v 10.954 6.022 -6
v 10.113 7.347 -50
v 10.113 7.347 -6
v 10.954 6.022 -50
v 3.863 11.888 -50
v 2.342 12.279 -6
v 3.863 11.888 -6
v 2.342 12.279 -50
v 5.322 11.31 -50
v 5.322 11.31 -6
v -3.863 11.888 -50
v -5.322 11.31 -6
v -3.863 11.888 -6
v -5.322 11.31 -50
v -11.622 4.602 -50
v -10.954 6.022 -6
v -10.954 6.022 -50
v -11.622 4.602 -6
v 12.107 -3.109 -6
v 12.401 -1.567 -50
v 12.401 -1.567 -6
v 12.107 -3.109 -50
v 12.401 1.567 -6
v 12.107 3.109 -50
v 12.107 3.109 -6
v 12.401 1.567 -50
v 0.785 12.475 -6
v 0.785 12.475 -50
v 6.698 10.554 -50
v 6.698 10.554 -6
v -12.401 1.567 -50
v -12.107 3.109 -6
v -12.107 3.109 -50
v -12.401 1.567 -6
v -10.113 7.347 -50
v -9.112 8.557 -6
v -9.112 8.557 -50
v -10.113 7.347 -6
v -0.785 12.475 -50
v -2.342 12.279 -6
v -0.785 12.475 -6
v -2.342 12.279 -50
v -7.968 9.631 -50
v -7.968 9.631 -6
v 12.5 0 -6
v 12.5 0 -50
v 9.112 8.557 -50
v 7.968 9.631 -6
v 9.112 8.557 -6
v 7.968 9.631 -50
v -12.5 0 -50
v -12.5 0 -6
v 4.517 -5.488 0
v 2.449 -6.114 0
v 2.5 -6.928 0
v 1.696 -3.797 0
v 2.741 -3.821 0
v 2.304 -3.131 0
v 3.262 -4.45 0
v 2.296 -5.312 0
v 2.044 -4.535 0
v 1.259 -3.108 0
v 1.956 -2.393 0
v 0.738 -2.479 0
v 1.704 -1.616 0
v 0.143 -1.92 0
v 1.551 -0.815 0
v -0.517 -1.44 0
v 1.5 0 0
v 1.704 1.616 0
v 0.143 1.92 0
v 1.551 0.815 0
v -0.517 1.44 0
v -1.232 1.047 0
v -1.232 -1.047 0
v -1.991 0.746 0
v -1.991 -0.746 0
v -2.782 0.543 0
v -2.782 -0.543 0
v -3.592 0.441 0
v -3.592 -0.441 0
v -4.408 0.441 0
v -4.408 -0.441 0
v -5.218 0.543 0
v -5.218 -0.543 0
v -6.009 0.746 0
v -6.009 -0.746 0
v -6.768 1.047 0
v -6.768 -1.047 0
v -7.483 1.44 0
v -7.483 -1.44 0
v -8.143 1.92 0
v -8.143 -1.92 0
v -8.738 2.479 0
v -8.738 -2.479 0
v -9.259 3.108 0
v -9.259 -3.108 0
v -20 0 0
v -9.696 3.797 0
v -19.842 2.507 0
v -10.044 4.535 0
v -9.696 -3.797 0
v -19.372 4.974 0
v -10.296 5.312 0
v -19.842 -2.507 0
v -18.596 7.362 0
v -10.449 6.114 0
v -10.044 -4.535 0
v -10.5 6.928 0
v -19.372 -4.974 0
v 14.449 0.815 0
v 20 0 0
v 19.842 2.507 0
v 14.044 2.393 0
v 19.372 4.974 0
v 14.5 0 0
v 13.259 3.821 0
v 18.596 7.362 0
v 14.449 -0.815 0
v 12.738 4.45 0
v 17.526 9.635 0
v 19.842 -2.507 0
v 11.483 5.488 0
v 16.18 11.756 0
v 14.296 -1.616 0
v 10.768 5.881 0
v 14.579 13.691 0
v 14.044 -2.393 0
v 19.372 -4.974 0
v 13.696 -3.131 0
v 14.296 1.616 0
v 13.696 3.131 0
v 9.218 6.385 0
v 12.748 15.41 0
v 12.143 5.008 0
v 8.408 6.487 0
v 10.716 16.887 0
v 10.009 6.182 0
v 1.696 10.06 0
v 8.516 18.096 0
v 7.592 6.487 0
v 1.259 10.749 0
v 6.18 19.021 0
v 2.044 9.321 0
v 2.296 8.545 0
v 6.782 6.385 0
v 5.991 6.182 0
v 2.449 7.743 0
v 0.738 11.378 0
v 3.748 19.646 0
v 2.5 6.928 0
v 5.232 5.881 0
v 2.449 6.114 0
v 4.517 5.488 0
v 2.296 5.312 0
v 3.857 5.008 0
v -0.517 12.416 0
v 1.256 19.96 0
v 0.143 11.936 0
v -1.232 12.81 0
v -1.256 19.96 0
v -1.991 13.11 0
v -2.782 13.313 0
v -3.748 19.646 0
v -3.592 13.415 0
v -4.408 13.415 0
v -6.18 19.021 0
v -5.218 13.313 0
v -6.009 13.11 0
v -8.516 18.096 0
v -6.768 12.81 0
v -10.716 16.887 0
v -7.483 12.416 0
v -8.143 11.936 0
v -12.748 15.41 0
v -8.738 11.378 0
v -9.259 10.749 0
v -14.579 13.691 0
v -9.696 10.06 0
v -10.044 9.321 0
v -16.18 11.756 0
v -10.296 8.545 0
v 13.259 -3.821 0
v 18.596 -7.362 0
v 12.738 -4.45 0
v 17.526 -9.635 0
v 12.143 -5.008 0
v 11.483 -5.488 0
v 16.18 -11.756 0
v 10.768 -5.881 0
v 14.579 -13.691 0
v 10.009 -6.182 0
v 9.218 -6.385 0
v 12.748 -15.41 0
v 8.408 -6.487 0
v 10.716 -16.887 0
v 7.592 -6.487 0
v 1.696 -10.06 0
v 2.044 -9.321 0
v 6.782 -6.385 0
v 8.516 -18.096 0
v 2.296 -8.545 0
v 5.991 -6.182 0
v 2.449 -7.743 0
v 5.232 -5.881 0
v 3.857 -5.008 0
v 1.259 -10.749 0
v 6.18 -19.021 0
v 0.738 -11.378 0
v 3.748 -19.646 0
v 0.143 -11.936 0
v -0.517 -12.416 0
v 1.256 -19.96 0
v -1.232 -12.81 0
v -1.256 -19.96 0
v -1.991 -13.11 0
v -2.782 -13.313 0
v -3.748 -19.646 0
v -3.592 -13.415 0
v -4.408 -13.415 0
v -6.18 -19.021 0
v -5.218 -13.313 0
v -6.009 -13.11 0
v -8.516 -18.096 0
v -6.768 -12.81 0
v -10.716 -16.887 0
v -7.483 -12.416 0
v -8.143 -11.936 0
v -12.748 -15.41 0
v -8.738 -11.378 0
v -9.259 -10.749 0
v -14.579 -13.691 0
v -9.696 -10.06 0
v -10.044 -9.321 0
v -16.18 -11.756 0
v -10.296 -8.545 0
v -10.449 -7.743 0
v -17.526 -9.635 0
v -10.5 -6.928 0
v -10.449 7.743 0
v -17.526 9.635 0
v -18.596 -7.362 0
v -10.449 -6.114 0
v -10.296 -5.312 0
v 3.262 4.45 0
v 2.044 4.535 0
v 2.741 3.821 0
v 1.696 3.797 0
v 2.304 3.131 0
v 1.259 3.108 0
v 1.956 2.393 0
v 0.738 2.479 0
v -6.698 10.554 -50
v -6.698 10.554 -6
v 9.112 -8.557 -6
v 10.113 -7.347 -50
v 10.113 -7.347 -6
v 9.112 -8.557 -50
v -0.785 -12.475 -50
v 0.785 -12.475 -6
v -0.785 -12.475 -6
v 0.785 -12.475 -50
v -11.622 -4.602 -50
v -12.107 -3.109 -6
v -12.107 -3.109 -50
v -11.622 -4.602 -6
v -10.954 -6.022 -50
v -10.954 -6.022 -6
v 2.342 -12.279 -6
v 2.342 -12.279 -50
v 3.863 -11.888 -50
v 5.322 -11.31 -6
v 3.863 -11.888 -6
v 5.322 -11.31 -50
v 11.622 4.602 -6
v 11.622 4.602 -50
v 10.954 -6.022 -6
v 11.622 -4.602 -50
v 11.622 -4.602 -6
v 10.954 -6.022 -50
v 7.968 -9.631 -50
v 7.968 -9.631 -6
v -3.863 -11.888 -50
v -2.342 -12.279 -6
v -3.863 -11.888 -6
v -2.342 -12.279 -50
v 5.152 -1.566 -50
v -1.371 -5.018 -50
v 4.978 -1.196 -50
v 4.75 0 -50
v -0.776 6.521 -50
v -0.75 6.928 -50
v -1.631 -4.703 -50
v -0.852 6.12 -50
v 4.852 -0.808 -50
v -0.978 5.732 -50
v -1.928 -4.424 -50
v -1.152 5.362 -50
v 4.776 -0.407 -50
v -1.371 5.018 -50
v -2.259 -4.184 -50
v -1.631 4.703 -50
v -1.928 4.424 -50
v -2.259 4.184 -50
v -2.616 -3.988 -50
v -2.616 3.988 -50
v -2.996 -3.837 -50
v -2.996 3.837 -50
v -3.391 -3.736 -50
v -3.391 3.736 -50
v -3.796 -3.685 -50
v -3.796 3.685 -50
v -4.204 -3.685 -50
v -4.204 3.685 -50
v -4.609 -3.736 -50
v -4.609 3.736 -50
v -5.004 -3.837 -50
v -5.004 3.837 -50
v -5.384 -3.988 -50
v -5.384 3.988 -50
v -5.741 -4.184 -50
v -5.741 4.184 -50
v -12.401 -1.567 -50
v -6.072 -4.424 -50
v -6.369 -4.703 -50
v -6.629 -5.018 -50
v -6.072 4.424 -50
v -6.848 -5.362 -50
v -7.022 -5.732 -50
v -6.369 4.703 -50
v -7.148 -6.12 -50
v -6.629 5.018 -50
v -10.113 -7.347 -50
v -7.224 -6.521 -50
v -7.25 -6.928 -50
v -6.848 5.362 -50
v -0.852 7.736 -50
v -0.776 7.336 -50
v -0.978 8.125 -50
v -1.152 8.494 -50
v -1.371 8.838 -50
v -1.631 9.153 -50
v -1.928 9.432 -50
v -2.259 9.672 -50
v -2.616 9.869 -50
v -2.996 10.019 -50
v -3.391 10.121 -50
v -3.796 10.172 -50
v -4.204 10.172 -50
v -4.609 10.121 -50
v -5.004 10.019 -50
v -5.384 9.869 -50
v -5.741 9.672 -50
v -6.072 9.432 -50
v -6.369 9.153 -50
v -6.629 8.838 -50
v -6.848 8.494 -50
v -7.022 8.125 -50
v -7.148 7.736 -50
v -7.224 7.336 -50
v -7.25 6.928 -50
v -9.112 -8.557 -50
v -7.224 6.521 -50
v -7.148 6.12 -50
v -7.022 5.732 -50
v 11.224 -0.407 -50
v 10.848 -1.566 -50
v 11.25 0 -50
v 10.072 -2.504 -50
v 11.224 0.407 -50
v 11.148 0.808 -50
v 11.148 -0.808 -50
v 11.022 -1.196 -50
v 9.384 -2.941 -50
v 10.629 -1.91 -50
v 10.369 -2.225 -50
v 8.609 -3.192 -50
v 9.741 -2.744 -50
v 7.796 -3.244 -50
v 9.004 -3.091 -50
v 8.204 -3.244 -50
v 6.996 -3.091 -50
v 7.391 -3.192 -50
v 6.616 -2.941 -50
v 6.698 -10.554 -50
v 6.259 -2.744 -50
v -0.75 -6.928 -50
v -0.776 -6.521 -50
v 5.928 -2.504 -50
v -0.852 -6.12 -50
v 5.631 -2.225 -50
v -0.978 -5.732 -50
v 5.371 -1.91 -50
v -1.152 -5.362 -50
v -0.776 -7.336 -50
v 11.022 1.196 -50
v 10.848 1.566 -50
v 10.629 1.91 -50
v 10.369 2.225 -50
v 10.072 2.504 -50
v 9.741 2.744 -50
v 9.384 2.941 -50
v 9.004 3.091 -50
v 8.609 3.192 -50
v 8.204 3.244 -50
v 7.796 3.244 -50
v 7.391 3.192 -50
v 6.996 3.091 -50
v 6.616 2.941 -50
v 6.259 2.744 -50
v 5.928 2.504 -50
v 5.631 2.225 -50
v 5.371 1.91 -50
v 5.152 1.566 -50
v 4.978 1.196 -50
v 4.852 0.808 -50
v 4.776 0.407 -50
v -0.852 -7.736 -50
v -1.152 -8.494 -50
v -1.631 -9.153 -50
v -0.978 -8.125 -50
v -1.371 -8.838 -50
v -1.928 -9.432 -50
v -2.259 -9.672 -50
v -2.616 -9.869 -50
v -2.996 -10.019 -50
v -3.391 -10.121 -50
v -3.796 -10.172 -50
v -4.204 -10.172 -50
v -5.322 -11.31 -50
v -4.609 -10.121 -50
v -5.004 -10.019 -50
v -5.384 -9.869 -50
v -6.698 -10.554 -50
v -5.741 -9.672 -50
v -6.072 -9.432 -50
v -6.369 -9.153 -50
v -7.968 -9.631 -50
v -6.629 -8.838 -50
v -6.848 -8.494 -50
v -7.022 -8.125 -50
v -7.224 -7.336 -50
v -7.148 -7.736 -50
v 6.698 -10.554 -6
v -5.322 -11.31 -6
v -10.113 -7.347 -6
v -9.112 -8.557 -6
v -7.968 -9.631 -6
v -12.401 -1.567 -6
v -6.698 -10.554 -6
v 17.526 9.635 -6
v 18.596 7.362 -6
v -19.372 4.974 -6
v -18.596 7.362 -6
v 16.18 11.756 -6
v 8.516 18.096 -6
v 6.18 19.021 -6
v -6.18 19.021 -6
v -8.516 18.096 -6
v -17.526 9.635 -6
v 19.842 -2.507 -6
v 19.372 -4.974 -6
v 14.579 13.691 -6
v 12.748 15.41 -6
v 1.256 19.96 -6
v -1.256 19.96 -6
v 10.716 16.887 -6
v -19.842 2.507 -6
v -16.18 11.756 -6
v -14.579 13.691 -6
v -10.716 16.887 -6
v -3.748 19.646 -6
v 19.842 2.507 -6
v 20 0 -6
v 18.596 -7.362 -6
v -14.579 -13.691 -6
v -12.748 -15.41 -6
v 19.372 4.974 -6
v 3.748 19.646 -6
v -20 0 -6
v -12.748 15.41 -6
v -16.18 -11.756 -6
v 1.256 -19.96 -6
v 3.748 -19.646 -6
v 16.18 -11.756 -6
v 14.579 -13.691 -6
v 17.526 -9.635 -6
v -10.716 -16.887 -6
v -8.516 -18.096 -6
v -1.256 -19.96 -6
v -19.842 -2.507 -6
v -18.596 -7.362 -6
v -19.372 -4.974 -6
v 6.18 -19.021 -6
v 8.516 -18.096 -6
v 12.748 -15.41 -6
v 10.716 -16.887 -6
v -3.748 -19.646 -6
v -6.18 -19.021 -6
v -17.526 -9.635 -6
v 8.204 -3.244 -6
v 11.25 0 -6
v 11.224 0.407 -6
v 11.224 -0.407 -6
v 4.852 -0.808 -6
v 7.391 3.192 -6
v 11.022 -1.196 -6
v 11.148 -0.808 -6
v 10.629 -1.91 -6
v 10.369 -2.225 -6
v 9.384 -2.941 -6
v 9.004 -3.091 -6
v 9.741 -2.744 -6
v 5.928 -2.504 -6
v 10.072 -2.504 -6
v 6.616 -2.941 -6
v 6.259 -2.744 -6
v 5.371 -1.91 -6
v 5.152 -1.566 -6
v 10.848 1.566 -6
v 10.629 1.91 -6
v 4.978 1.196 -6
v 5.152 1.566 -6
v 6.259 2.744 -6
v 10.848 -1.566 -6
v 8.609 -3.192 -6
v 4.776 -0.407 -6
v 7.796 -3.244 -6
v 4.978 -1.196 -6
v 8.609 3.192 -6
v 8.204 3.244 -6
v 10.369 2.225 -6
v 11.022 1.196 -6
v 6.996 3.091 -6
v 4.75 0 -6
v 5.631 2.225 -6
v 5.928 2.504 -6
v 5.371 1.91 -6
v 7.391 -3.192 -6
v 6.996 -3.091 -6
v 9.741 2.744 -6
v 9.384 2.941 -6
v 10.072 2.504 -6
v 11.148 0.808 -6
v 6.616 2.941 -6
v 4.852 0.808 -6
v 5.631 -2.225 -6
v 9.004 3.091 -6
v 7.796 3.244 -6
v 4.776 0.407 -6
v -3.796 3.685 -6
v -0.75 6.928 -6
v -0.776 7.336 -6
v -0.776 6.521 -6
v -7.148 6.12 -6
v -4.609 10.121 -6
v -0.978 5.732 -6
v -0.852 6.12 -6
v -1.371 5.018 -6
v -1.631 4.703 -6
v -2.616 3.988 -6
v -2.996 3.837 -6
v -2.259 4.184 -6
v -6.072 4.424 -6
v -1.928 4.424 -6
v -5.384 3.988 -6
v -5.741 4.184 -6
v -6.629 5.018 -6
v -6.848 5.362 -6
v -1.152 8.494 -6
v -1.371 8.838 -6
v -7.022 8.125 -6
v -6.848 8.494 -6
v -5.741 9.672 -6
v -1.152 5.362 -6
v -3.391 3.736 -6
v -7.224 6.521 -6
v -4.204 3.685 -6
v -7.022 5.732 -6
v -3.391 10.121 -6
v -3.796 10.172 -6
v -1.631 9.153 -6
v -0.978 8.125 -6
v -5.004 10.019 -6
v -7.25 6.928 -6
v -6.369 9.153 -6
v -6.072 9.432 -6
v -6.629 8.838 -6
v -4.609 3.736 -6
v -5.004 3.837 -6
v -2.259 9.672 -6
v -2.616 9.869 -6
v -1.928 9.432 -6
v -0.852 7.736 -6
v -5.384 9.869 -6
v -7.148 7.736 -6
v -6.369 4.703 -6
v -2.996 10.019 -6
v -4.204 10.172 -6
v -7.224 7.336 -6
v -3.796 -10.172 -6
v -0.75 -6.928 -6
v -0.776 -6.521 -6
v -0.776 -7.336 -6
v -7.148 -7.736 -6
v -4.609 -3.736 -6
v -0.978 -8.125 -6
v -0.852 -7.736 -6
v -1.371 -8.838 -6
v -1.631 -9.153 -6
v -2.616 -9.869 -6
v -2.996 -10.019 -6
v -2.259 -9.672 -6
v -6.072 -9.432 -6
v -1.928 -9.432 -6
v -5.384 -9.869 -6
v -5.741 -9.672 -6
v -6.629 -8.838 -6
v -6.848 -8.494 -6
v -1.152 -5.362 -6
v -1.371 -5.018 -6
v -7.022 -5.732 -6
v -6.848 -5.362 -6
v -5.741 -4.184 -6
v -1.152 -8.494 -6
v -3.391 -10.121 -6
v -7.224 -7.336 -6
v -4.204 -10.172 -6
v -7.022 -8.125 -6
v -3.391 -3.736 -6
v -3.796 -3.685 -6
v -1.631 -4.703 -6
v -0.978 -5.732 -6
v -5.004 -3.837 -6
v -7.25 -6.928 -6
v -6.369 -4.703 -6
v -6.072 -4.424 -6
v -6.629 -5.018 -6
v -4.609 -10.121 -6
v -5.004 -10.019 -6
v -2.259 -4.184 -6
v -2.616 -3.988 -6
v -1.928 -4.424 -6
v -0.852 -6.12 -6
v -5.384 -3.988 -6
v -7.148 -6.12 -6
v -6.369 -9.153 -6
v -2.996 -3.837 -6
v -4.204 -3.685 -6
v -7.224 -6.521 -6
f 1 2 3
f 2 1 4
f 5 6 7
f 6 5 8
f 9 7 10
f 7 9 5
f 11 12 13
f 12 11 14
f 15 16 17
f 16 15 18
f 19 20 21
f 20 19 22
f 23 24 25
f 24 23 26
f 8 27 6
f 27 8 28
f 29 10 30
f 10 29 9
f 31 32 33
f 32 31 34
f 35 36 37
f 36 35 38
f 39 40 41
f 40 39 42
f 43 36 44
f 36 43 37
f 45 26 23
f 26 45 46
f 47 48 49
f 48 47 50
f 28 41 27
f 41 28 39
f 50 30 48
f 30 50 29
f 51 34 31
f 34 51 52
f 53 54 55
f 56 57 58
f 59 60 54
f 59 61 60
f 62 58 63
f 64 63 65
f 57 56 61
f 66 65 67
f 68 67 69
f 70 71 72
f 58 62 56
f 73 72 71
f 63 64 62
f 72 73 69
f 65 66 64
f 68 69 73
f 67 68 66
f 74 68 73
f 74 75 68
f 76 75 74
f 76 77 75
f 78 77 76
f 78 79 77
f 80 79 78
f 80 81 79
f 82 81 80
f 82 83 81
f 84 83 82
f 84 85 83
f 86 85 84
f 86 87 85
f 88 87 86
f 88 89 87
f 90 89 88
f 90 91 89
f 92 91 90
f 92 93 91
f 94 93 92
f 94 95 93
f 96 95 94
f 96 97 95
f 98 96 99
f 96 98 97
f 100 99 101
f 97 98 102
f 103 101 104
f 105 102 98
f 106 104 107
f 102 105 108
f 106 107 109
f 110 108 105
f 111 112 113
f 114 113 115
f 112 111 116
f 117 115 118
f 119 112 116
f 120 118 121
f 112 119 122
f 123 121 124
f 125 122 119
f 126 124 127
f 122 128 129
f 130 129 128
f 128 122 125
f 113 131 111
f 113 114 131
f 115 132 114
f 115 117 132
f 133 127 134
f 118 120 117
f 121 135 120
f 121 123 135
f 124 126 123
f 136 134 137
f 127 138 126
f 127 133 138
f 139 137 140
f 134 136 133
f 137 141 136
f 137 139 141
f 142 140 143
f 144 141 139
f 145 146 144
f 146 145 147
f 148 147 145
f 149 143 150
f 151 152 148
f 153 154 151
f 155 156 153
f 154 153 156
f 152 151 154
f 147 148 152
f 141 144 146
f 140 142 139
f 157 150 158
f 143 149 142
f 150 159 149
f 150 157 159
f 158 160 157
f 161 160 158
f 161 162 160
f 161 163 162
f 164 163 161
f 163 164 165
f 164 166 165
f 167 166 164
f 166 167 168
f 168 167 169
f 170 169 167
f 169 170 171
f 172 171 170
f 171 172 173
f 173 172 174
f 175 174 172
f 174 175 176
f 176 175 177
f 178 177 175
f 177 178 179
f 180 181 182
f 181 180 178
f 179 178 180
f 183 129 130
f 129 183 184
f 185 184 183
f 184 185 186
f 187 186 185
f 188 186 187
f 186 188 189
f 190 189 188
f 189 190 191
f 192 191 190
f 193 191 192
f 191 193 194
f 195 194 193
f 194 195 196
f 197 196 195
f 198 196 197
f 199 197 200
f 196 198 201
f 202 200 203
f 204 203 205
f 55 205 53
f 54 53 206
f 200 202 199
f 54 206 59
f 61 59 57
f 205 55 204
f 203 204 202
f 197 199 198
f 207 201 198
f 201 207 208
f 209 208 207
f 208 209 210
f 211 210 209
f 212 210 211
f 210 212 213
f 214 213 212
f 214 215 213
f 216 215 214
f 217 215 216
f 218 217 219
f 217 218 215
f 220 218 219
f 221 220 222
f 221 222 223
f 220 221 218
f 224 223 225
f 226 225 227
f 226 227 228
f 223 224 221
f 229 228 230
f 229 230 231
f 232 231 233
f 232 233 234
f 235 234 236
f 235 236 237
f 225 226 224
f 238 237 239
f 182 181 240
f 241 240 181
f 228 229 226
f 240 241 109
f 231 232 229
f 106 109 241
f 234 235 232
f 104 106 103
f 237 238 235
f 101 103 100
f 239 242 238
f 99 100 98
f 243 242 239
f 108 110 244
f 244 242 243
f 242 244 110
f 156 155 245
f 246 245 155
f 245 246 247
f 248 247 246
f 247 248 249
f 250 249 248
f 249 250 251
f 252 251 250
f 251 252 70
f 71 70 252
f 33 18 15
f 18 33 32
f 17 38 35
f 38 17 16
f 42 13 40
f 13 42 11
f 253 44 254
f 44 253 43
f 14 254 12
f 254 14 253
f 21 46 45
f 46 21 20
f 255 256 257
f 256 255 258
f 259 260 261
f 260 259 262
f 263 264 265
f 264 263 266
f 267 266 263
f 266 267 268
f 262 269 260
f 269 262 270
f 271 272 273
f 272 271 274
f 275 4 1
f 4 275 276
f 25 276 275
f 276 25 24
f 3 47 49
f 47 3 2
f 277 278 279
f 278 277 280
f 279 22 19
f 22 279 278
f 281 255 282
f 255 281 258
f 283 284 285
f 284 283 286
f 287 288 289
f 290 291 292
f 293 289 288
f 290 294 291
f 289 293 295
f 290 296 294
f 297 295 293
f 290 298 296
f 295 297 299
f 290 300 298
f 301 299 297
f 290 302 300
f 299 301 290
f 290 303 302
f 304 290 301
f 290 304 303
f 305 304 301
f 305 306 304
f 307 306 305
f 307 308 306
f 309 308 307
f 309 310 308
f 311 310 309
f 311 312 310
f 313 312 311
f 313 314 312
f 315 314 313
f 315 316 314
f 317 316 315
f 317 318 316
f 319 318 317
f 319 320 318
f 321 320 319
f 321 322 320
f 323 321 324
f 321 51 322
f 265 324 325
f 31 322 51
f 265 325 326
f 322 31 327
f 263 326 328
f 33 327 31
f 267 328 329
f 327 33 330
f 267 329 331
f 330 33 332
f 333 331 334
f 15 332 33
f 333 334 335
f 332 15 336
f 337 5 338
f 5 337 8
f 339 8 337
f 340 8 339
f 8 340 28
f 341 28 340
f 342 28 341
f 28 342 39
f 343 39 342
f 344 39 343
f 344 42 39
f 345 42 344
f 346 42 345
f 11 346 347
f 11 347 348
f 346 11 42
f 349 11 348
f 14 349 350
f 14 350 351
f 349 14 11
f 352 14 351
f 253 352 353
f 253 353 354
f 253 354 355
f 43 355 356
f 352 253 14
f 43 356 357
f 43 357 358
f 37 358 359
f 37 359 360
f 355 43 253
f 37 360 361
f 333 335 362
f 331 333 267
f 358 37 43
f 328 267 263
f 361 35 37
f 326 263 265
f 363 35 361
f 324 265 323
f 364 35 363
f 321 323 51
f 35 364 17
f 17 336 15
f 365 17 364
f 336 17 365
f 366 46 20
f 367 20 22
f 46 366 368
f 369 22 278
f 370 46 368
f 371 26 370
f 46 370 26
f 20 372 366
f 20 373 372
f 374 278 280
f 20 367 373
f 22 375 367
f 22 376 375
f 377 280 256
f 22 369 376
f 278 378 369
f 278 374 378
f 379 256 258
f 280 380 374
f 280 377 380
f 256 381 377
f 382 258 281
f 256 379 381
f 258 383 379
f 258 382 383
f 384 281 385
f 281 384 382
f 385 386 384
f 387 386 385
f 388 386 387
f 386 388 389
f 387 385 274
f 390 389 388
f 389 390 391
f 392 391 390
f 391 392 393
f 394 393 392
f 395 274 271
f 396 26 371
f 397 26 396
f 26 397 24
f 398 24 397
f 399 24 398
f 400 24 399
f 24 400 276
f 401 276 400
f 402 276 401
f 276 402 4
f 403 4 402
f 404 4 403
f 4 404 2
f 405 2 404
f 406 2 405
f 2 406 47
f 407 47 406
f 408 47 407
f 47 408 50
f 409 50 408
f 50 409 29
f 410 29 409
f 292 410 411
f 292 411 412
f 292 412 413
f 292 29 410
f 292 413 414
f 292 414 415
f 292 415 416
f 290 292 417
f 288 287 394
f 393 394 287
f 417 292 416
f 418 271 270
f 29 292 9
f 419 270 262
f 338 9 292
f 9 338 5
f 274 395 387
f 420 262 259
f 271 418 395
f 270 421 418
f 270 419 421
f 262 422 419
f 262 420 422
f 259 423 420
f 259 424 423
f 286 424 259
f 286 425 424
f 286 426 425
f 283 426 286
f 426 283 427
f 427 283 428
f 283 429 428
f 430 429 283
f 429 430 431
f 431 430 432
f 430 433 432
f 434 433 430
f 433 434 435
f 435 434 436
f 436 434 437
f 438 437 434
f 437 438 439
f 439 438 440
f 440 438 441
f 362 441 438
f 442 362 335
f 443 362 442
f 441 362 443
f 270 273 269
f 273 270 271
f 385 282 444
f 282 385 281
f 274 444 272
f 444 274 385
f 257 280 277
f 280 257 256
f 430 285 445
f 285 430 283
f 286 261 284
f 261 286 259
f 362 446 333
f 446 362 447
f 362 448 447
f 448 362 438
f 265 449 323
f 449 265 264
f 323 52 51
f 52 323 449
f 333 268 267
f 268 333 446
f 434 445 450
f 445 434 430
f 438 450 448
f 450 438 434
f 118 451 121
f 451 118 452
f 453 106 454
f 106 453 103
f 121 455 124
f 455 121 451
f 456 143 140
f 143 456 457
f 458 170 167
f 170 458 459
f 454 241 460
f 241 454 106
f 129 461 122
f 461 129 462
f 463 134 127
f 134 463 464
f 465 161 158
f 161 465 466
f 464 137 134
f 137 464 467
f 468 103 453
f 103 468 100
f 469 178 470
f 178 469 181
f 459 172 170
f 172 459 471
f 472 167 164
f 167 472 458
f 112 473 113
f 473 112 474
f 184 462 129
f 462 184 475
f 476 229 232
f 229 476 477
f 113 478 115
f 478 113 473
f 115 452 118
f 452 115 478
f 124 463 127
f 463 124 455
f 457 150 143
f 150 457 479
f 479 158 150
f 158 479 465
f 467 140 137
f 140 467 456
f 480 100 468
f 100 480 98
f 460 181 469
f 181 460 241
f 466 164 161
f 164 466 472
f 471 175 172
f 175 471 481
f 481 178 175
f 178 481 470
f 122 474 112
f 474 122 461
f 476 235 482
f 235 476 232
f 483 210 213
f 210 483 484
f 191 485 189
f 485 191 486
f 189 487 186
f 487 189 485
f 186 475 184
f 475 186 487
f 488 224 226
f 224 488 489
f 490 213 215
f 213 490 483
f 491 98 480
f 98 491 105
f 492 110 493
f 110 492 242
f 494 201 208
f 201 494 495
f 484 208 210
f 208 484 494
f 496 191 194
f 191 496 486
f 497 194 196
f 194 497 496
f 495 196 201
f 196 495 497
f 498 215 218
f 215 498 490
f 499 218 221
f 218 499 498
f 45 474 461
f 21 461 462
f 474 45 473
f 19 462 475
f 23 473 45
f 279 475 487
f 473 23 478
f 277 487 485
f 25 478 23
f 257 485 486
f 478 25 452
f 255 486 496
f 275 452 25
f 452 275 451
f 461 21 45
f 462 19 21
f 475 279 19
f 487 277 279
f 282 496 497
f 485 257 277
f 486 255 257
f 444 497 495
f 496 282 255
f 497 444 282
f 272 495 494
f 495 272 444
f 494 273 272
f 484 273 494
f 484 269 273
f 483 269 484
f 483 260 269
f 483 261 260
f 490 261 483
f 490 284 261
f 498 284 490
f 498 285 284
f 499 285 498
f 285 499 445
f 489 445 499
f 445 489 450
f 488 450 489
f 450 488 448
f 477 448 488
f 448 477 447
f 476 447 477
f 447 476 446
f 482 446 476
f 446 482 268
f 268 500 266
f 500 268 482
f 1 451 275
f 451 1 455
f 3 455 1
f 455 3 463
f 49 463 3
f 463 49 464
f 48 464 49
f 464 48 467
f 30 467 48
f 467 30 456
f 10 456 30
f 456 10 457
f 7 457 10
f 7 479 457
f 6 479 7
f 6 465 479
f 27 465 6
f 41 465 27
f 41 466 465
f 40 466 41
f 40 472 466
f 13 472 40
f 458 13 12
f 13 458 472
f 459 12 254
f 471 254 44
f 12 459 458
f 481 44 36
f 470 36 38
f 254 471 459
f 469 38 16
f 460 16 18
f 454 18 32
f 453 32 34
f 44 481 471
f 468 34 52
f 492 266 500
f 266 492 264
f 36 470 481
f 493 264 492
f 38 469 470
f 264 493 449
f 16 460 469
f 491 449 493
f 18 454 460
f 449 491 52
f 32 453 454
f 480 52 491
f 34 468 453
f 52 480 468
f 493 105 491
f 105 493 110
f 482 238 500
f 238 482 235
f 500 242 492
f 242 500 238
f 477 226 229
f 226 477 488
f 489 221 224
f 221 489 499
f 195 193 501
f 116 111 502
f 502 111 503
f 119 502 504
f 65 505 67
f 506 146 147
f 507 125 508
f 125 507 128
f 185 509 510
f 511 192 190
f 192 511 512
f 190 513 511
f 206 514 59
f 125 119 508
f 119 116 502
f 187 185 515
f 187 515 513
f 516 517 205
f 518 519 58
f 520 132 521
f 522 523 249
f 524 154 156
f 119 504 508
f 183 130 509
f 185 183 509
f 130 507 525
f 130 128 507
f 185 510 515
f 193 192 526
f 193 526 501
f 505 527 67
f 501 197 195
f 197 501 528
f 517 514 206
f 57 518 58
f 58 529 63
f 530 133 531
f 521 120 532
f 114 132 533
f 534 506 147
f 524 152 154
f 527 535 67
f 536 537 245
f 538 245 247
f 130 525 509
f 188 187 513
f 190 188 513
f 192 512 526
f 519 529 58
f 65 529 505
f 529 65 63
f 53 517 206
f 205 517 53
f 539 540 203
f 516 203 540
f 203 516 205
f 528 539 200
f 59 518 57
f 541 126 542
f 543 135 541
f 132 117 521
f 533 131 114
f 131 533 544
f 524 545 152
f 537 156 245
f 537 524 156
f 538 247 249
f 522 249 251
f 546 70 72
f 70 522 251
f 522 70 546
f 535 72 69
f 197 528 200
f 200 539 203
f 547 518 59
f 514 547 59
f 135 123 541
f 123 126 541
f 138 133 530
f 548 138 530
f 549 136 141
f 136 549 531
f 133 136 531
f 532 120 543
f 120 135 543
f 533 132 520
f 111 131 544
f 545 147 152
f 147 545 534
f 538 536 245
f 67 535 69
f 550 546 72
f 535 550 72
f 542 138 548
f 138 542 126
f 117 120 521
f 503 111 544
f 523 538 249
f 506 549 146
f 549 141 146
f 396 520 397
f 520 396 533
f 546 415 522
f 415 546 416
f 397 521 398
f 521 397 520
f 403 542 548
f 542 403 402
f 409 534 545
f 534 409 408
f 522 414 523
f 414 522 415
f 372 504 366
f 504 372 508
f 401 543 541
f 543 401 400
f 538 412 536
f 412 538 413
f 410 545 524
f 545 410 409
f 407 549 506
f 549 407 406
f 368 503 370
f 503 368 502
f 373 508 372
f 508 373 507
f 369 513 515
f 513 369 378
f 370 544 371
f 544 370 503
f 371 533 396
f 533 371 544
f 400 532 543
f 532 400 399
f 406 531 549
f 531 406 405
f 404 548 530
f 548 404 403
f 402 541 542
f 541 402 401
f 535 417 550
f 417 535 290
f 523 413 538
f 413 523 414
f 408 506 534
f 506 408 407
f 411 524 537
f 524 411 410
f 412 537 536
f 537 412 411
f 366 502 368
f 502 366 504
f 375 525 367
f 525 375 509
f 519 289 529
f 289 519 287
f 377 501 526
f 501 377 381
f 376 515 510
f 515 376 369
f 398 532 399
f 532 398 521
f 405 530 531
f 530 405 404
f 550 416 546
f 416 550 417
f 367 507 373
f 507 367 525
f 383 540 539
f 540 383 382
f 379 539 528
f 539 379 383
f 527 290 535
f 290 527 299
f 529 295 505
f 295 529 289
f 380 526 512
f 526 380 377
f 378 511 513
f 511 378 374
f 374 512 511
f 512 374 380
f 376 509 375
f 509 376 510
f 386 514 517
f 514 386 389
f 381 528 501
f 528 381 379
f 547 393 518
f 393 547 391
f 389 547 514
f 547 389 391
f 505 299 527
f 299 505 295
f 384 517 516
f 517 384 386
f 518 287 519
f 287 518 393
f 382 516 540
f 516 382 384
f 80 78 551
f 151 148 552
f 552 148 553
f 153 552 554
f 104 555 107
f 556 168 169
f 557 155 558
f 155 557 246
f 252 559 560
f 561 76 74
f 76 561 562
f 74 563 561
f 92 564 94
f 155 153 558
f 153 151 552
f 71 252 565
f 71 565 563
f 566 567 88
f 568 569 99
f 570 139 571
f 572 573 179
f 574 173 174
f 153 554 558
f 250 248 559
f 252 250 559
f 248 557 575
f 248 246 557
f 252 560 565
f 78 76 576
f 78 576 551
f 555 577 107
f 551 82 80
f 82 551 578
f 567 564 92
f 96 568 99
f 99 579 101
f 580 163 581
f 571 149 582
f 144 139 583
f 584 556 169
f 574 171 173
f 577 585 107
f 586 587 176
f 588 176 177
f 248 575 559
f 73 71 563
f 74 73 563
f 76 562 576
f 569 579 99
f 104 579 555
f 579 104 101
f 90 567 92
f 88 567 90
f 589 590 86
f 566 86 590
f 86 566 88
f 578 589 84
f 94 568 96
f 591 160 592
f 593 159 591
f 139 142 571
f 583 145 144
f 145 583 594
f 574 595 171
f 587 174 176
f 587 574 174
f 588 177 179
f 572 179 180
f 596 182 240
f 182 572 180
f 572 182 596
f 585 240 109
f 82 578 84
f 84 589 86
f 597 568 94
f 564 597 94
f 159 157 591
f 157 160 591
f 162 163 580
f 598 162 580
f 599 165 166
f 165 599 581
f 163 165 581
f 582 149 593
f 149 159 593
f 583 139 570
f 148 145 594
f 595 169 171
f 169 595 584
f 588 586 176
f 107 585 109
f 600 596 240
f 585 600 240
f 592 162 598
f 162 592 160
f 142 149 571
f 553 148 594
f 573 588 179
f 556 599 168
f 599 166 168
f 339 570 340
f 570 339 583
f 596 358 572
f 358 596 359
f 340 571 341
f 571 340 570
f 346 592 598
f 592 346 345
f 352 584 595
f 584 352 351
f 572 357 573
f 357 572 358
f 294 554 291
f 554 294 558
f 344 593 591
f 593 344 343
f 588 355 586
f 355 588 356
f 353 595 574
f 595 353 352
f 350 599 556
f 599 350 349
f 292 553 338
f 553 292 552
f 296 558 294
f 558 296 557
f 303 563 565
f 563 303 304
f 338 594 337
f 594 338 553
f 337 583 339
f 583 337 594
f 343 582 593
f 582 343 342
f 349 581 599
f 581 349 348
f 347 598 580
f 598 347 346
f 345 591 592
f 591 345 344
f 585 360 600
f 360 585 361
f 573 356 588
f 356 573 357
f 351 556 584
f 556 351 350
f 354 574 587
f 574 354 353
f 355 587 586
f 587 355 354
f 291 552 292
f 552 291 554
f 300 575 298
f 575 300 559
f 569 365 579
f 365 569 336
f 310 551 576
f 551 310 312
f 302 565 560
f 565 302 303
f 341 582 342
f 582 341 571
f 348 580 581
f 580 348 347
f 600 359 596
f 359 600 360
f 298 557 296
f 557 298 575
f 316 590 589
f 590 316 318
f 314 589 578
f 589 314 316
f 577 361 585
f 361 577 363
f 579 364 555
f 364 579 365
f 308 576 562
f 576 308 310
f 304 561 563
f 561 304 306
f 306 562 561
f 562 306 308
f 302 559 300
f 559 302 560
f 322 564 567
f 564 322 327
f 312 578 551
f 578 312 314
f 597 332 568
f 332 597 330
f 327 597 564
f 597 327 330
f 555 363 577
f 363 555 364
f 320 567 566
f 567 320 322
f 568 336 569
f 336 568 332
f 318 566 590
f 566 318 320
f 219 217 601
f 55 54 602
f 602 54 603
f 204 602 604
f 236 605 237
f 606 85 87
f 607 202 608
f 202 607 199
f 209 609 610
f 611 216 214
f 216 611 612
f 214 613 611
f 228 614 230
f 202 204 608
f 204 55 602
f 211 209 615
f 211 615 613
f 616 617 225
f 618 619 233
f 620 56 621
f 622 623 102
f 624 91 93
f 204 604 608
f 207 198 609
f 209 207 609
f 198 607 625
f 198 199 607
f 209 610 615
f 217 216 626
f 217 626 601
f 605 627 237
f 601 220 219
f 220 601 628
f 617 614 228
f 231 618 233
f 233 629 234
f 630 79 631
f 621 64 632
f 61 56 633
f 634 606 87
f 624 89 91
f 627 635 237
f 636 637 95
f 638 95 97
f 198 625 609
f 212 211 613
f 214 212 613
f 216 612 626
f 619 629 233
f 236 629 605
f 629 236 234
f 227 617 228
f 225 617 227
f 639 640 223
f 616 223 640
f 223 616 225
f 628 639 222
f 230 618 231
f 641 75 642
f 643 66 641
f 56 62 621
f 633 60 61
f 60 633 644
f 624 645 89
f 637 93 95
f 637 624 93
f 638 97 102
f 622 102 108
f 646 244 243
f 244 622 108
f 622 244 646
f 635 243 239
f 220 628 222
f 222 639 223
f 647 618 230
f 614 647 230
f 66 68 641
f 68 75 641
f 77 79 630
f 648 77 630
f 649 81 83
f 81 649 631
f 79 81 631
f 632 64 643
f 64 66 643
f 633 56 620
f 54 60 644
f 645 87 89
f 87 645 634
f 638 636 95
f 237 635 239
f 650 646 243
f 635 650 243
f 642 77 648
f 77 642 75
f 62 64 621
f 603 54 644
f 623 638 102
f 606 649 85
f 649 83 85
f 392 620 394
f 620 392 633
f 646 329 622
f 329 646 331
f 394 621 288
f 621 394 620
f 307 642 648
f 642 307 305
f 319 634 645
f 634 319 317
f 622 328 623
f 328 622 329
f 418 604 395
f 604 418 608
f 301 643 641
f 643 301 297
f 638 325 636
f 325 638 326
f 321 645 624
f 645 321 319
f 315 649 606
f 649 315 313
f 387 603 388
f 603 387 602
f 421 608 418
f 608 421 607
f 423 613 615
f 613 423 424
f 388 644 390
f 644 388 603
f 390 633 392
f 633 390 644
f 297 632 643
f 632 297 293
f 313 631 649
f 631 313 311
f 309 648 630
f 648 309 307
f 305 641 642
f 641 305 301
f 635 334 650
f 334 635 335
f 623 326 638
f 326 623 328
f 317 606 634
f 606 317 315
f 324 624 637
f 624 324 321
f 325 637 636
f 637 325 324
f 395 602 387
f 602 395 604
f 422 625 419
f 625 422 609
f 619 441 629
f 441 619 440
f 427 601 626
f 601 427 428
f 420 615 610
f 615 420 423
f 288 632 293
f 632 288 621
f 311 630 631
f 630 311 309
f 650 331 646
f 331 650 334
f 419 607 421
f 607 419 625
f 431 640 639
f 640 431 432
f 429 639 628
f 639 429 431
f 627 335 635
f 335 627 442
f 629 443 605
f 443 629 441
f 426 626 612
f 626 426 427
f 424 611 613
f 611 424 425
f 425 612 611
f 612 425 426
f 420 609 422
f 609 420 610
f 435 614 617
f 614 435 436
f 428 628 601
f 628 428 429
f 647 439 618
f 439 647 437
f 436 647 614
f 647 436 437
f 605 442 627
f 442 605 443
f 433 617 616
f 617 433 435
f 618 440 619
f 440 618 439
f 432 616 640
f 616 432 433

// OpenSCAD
$fn = 50;


difference() {
	union() {
		translate(v = [0, 0, -50.0000000000]) {
			cylinder(h = 50, r = 12.5000000000);
		}
		translate(v = [0, 0, -6.0000000000]) {
			cylinder(h = 6, r = 20.0000000000);
		}
	}
	union() {
		translate(v = [8.0000000000, 0.0000000000, 0]) {
			rotate(a = [0, 0, 0]) {
				difference() {
					union() {
						#translate(v = [0, 0, -50.0000000000]) {
							cylinder(h = 50, r = 2.2500000000);
						}
						#translate(v = [0, 0, -6]) {
							cylinder(h = 6, r = 12.5000000000, r1 = 3.2500000000, r2 = 6.5000000000);
						}
						#translate(v = [0, 0, -50.0000000000]) {
							cylinder(h = 50, r = 3.2500000000);
						}
						#translate(v = [0, 0, -50.0000000000]) {
							cylinder(h = 50, r = 2.2500000000);
						}
					}
					union();
				}
			}
		}
		translate(v = [-4.0000000000, 6.9282032303, 0]) {
			rotate(a = [0, 0, 0]) {
				difference() {
					union() {
						#translate(v = [0, 0, -50.0000000000]) {
							cylinder(h = 50, r = 2.2500000000);
						}
						#translate(v = [0, 0, -6]) {
							cylinder(h = 6, r = 12.5000000000, r1 = 3.2500000000, r2 = 6.5000000000);
						}
						#translate(v = [0, 0, -50.0000000000]) {
							cylinder(h = 50, r = 3.2500000000);
						}
						#translate(v = [0, 0, -50.0000000000]) {
							cylinder(h = 50, r = 2.2500000000);
						}
					}
					union();
				}
			}
		}
		translate(v = [-4.0000000000, -6.9282032303, 0]) {
			rotate(a = [0, 0, 0]) {
				difference() {
					union() {
						#translate(v = [0, 0, -50.0000000000]) {
							cylinder(h = 50, r = 2.2500000000);
						}
						#translate(v = [0, 0, -6]) {
							cylinder(h = 6, r = 12.5000000000, r1 = 3.2500000000, r2 = 6.5000000000);
						}
						#translate(v = [0, 0, -50.0000000000]) {
							cylinder(h = 50, r = 3.2500000000);
						}
						#translate(v = [0, 0, -50.0000000000]) {
							cylinder(h = 50, r = 2.2500000000);
						}
					}
					union();
				}
			}
		}
	}
}
